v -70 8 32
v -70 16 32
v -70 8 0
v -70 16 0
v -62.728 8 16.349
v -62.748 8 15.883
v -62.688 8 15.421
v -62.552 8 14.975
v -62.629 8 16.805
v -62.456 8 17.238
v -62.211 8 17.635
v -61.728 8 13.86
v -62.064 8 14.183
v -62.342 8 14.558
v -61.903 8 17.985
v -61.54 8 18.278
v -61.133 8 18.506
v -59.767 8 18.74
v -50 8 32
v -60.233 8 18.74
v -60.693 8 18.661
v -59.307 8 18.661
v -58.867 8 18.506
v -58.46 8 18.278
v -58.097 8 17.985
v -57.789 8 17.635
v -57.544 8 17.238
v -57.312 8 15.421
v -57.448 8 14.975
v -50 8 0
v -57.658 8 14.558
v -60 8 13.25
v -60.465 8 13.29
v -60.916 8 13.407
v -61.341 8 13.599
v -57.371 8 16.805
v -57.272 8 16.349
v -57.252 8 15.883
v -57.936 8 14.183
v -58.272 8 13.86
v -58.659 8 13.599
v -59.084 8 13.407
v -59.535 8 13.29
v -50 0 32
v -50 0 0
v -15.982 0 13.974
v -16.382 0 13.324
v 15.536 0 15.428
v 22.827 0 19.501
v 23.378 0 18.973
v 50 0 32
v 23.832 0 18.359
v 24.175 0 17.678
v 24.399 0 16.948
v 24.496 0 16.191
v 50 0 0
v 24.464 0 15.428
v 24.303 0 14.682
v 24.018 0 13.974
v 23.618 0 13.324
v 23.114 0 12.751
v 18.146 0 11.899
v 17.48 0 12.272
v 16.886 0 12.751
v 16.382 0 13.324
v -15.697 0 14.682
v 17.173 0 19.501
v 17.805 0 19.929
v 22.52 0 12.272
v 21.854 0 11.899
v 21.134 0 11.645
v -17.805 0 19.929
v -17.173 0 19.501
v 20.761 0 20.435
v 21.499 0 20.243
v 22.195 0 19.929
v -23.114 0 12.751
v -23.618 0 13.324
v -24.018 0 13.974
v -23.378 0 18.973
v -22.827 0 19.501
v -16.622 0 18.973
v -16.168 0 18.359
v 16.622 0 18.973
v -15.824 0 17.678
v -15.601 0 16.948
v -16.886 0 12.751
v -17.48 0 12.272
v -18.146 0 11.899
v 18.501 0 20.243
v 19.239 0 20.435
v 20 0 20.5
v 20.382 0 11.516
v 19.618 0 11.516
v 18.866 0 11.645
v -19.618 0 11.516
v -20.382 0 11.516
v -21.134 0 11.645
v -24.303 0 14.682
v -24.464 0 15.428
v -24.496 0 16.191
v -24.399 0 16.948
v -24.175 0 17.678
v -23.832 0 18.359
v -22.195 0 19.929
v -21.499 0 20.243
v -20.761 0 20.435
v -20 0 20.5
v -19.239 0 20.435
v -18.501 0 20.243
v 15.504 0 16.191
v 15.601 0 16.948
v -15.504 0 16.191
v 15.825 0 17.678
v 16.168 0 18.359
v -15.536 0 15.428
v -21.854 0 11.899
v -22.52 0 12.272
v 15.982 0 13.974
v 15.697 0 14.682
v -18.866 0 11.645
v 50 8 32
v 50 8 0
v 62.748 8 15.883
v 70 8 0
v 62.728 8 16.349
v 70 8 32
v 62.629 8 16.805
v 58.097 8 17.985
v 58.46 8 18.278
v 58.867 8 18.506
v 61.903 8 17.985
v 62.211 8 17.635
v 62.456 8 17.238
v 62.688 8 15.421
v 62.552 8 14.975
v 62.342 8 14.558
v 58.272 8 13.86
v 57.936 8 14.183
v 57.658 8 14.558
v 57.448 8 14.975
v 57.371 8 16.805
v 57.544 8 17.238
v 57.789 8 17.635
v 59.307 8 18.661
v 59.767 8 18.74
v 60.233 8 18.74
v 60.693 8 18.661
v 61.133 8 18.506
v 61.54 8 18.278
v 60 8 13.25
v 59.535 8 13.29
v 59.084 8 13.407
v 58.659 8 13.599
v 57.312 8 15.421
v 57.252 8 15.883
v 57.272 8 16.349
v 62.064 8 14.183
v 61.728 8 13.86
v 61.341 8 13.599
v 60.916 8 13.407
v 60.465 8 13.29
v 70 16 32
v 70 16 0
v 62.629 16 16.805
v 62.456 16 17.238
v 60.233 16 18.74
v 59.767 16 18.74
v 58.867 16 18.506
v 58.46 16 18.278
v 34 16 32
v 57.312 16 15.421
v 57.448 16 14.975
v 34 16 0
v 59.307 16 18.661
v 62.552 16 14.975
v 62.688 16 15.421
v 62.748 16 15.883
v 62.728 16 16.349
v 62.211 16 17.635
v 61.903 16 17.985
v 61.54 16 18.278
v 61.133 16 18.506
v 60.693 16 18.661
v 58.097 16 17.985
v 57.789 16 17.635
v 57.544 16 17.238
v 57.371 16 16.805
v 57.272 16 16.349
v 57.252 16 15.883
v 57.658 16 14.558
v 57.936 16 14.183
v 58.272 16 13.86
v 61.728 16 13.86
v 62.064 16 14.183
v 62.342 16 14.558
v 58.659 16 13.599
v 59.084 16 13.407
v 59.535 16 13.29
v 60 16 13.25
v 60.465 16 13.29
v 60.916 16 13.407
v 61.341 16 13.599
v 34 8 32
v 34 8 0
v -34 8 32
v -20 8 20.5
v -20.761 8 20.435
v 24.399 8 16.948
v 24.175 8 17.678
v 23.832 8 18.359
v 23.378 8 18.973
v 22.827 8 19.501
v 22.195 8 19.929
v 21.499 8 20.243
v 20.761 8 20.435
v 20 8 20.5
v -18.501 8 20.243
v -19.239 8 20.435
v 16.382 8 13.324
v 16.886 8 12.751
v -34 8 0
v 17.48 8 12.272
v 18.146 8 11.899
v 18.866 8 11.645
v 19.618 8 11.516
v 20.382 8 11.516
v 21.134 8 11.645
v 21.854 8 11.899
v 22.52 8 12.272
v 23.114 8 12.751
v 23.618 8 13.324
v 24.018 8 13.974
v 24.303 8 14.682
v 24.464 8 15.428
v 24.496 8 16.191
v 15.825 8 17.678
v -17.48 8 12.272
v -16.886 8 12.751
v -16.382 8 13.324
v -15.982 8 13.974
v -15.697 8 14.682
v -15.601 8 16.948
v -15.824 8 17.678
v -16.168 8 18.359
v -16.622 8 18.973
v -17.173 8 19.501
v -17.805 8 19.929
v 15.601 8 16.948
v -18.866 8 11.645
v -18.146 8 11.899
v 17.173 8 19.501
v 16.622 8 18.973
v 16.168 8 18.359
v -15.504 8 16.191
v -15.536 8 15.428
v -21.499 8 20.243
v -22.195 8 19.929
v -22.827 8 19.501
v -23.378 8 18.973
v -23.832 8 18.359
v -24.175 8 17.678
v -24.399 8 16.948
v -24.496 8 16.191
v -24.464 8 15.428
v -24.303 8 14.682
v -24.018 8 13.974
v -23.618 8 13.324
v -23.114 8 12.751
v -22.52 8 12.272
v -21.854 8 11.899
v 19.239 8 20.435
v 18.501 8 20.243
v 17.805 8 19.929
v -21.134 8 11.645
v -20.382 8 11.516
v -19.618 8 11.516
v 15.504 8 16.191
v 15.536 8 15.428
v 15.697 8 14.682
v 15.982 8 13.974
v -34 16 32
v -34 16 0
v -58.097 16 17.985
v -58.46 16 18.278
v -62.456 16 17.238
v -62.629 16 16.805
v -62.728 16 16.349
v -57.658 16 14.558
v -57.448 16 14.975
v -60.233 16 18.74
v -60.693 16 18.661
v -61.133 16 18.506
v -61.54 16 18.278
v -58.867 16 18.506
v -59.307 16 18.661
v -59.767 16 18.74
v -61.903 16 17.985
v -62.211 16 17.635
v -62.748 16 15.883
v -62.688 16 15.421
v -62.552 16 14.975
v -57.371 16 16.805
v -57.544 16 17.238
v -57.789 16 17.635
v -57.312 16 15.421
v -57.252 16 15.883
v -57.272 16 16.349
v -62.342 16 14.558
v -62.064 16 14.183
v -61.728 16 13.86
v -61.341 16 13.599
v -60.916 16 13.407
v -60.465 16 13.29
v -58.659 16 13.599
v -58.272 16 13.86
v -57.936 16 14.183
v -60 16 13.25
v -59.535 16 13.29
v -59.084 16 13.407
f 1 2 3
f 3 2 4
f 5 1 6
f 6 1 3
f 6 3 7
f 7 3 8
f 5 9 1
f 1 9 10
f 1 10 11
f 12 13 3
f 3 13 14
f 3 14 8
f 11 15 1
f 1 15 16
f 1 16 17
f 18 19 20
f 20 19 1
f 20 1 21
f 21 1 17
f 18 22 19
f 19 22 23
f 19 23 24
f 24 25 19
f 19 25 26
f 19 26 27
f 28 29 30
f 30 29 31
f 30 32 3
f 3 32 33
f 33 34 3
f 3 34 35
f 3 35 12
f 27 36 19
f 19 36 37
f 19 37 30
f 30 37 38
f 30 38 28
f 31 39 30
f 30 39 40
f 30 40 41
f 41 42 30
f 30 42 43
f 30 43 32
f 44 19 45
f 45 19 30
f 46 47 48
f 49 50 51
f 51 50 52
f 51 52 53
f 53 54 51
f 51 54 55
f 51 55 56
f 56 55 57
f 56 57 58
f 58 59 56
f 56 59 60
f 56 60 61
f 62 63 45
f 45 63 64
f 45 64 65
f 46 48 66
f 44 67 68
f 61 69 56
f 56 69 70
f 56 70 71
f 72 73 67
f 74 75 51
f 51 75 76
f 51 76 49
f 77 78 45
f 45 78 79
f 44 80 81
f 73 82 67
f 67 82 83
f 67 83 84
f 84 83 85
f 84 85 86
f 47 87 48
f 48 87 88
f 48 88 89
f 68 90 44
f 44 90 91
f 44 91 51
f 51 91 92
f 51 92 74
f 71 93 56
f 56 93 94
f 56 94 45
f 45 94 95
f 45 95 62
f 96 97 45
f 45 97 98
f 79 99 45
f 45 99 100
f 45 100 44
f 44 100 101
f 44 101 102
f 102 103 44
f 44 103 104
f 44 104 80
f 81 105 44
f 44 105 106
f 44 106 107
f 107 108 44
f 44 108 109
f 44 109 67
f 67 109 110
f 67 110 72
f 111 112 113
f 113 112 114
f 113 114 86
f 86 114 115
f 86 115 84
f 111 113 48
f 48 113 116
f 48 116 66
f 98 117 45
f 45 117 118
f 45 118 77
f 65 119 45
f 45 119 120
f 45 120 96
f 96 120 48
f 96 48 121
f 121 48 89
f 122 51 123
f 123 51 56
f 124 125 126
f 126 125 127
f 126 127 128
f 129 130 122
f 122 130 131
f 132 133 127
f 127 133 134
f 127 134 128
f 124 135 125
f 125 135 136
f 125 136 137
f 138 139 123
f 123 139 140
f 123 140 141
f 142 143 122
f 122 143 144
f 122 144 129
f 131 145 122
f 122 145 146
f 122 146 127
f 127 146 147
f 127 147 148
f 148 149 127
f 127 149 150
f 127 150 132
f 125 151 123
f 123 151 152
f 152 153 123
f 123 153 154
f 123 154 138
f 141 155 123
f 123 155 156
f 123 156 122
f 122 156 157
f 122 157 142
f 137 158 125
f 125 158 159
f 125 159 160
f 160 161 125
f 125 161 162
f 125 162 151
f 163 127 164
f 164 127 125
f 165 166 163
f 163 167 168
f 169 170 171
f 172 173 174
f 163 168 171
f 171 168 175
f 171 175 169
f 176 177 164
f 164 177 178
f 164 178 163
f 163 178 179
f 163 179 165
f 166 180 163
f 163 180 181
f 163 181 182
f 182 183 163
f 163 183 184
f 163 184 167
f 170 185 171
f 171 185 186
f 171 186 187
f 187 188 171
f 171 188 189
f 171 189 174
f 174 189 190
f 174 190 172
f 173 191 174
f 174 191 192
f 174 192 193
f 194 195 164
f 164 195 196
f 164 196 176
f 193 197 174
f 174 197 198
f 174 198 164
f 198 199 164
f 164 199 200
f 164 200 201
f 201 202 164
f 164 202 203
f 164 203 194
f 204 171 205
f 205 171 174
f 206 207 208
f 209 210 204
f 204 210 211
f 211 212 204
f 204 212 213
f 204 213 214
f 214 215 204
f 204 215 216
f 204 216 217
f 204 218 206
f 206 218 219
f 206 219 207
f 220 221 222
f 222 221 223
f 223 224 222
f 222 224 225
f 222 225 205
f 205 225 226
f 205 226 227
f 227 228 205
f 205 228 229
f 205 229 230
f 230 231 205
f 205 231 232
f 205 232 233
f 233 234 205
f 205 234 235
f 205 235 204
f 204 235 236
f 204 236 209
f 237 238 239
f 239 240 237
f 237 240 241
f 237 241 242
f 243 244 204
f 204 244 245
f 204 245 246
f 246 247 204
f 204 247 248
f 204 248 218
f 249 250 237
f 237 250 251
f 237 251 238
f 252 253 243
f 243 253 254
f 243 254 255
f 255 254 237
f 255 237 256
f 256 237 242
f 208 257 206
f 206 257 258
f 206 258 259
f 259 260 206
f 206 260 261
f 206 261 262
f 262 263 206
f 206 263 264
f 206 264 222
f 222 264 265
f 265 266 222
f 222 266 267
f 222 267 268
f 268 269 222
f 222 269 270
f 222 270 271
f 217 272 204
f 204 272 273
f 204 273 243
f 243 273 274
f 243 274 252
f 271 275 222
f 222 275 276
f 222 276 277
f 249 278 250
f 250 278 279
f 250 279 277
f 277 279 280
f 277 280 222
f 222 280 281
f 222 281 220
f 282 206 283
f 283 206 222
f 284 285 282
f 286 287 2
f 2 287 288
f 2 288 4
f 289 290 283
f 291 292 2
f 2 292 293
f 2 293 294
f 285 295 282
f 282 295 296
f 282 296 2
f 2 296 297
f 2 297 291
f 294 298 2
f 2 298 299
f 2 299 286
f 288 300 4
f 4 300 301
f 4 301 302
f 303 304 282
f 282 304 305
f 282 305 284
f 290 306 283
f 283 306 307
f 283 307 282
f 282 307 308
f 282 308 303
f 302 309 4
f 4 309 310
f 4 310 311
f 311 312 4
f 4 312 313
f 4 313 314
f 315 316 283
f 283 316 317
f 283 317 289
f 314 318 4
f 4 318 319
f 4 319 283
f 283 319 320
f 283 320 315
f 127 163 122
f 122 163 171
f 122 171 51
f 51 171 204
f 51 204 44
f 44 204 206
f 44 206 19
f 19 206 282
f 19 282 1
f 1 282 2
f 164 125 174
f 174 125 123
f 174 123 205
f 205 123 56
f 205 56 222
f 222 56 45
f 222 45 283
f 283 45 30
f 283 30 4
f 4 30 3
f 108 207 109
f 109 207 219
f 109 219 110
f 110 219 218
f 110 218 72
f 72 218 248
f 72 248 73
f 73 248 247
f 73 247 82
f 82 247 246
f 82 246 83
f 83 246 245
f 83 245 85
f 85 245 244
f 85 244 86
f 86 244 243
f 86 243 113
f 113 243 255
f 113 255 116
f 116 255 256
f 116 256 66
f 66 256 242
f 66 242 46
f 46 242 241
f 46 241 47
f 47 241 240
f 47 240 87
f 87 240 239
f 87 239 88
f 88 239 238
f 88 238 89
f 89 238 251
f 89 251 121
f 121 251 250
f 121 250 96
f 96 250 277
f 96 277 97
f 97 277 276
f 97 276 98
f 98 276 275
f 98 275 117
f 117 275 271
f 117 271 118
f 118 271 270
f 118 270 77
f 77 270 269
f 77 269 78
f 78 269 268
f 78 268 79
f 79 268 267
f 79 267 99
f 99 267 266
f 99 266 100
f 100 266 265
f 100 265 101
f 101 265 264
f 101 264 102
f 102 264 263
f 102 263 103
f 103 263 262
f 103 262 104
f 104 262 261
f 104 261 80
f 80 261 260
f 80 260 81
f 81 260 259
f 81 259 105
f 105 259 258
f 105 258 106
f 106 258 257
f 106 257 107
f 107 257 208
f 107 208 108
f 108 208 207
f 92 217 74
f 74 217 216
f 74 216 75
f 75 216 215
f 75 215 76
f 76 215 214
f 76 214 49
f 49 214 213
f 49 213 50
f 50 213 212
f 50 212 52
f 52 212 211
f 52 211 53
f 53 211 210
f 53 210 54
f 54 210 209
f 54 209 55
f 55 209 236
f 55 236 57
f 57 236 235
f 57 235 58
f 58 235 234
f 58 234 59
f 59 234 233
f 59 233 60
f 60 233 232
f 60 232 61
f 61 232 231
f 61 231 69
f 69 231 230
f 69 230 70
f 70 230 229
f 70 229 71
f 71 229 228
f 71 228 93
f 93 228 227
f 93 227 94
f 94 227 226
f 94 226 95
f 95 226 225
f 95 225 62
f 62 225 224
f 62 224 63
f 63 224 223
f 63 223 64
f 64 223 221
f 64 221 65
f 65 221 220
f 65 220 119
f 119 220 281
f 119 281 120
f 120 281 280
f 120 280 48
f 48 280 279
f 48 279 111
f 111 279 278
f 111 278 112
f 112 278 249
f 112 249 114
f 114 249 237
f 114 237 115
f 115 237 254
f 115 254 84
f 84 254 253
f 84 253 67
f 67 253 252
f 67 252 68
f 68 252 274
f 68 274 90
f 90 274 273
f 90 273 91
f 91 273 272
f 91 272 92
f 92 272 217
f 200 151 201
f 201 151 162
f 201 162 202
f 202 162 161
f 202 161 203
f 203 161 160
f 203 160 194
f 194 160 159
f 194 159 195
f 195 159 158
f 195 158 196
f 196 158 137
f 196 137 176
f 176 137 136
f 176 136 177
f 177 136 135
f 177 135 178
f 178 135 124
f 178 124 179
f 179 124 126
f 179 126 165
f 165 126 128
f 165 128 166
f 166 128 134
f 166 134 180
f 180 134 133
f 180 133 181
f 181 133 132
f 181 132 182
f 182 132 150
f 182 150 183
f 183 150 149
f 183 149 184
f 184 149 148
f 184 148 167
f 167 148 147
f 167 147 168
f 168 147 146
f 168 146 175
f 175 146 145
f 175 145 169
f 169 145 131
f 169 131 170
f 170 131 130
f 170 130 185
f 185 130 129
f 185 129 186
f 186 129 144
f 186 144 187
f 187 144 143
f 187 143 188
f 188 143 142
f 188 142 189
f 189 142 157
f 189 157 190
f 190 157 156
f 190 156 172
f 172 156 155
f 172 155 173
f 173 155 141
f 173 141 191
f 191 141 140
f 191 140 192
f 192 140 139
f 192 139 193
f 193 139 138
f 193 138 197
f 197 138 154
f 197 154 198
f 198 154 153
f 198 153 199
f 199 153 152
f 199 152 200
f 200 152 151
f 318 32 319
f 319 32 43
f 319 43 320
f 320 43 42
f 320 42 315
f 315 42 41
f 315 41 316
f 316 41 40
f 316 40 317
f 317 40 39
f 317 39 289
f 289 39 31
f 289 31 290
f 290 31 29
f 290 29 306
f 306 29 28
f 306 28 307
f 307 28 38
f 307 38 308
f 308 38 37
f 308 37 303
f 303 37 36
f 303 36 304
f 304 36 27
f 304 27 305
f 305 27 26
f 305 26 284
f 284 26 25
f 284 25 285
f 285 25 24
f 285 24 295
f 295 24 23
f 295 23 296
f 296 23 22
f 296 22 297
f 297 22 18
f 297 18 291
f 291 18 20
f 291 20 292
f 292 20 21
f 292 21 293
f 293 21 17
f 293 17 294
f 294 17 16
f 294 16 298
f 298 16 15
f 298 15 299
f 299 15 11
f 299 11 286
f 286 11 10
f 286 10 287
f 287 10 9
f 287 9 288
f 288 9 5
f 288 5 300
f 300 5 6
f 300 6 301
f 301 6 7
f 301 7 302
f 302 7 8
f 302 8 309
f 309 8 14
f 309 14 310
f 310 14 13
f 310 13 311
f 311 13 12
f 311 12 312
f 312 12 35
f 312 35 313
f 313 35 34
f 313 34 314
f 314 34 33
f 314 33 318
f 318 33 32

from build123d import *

# Parameters (mm, degrees)
AUFSATZ_LINEAR_AUSTRAGEN1_DEPTH  = 32
F_9_0_9_DURCHMESSER_BOHRUNG1_D   = 9
F_5_5_5_5_DURCHMESSER_BOHRUNG1_D = 5.5


with BuildPart() as part:
    # Skizze1 → Aufsatz-Linear austragen1 (new body)
    with BuildSketch(Plane.XY):
        Polygon((-70, 16), (-34, 16), (-34, 8), (34, 8), (34, 16), (70, 16), (70, 8), (50, 8), (50, 0), (-50, 0), (-50, 8), (-70, 8), align=None)
    extrude(amount=AUFSATZ_LINEAR_AUSTRAGEN1_DEPTH)

    # Ø9.0 (9) Durchmesser Bohrung1 (through all)
    with Locations(Plane(origin=(20, 8, 16), x_dir=(0, 0, 1), z_dir=(0, 1, 0))):
        with Locations((0, 0), (0, -40)):
            Hole(F_9_0_9_DURCHMESSER_BOHRUNG1_D / 2)

    # Ø5.5 (5.5) Durchmesser Bohrung1 (through all)
    with Locations(Plane(origin=(-60, 8, 16), x_dir=(-1, 0, 0), z_dir=(0, -1, 0))):
        with Locations((0, 0), (-120, 0)):
            Hole(F_5_5_5_5_DURCHMESSER_BOHRUNG1_D / 2)


solid = part.part
